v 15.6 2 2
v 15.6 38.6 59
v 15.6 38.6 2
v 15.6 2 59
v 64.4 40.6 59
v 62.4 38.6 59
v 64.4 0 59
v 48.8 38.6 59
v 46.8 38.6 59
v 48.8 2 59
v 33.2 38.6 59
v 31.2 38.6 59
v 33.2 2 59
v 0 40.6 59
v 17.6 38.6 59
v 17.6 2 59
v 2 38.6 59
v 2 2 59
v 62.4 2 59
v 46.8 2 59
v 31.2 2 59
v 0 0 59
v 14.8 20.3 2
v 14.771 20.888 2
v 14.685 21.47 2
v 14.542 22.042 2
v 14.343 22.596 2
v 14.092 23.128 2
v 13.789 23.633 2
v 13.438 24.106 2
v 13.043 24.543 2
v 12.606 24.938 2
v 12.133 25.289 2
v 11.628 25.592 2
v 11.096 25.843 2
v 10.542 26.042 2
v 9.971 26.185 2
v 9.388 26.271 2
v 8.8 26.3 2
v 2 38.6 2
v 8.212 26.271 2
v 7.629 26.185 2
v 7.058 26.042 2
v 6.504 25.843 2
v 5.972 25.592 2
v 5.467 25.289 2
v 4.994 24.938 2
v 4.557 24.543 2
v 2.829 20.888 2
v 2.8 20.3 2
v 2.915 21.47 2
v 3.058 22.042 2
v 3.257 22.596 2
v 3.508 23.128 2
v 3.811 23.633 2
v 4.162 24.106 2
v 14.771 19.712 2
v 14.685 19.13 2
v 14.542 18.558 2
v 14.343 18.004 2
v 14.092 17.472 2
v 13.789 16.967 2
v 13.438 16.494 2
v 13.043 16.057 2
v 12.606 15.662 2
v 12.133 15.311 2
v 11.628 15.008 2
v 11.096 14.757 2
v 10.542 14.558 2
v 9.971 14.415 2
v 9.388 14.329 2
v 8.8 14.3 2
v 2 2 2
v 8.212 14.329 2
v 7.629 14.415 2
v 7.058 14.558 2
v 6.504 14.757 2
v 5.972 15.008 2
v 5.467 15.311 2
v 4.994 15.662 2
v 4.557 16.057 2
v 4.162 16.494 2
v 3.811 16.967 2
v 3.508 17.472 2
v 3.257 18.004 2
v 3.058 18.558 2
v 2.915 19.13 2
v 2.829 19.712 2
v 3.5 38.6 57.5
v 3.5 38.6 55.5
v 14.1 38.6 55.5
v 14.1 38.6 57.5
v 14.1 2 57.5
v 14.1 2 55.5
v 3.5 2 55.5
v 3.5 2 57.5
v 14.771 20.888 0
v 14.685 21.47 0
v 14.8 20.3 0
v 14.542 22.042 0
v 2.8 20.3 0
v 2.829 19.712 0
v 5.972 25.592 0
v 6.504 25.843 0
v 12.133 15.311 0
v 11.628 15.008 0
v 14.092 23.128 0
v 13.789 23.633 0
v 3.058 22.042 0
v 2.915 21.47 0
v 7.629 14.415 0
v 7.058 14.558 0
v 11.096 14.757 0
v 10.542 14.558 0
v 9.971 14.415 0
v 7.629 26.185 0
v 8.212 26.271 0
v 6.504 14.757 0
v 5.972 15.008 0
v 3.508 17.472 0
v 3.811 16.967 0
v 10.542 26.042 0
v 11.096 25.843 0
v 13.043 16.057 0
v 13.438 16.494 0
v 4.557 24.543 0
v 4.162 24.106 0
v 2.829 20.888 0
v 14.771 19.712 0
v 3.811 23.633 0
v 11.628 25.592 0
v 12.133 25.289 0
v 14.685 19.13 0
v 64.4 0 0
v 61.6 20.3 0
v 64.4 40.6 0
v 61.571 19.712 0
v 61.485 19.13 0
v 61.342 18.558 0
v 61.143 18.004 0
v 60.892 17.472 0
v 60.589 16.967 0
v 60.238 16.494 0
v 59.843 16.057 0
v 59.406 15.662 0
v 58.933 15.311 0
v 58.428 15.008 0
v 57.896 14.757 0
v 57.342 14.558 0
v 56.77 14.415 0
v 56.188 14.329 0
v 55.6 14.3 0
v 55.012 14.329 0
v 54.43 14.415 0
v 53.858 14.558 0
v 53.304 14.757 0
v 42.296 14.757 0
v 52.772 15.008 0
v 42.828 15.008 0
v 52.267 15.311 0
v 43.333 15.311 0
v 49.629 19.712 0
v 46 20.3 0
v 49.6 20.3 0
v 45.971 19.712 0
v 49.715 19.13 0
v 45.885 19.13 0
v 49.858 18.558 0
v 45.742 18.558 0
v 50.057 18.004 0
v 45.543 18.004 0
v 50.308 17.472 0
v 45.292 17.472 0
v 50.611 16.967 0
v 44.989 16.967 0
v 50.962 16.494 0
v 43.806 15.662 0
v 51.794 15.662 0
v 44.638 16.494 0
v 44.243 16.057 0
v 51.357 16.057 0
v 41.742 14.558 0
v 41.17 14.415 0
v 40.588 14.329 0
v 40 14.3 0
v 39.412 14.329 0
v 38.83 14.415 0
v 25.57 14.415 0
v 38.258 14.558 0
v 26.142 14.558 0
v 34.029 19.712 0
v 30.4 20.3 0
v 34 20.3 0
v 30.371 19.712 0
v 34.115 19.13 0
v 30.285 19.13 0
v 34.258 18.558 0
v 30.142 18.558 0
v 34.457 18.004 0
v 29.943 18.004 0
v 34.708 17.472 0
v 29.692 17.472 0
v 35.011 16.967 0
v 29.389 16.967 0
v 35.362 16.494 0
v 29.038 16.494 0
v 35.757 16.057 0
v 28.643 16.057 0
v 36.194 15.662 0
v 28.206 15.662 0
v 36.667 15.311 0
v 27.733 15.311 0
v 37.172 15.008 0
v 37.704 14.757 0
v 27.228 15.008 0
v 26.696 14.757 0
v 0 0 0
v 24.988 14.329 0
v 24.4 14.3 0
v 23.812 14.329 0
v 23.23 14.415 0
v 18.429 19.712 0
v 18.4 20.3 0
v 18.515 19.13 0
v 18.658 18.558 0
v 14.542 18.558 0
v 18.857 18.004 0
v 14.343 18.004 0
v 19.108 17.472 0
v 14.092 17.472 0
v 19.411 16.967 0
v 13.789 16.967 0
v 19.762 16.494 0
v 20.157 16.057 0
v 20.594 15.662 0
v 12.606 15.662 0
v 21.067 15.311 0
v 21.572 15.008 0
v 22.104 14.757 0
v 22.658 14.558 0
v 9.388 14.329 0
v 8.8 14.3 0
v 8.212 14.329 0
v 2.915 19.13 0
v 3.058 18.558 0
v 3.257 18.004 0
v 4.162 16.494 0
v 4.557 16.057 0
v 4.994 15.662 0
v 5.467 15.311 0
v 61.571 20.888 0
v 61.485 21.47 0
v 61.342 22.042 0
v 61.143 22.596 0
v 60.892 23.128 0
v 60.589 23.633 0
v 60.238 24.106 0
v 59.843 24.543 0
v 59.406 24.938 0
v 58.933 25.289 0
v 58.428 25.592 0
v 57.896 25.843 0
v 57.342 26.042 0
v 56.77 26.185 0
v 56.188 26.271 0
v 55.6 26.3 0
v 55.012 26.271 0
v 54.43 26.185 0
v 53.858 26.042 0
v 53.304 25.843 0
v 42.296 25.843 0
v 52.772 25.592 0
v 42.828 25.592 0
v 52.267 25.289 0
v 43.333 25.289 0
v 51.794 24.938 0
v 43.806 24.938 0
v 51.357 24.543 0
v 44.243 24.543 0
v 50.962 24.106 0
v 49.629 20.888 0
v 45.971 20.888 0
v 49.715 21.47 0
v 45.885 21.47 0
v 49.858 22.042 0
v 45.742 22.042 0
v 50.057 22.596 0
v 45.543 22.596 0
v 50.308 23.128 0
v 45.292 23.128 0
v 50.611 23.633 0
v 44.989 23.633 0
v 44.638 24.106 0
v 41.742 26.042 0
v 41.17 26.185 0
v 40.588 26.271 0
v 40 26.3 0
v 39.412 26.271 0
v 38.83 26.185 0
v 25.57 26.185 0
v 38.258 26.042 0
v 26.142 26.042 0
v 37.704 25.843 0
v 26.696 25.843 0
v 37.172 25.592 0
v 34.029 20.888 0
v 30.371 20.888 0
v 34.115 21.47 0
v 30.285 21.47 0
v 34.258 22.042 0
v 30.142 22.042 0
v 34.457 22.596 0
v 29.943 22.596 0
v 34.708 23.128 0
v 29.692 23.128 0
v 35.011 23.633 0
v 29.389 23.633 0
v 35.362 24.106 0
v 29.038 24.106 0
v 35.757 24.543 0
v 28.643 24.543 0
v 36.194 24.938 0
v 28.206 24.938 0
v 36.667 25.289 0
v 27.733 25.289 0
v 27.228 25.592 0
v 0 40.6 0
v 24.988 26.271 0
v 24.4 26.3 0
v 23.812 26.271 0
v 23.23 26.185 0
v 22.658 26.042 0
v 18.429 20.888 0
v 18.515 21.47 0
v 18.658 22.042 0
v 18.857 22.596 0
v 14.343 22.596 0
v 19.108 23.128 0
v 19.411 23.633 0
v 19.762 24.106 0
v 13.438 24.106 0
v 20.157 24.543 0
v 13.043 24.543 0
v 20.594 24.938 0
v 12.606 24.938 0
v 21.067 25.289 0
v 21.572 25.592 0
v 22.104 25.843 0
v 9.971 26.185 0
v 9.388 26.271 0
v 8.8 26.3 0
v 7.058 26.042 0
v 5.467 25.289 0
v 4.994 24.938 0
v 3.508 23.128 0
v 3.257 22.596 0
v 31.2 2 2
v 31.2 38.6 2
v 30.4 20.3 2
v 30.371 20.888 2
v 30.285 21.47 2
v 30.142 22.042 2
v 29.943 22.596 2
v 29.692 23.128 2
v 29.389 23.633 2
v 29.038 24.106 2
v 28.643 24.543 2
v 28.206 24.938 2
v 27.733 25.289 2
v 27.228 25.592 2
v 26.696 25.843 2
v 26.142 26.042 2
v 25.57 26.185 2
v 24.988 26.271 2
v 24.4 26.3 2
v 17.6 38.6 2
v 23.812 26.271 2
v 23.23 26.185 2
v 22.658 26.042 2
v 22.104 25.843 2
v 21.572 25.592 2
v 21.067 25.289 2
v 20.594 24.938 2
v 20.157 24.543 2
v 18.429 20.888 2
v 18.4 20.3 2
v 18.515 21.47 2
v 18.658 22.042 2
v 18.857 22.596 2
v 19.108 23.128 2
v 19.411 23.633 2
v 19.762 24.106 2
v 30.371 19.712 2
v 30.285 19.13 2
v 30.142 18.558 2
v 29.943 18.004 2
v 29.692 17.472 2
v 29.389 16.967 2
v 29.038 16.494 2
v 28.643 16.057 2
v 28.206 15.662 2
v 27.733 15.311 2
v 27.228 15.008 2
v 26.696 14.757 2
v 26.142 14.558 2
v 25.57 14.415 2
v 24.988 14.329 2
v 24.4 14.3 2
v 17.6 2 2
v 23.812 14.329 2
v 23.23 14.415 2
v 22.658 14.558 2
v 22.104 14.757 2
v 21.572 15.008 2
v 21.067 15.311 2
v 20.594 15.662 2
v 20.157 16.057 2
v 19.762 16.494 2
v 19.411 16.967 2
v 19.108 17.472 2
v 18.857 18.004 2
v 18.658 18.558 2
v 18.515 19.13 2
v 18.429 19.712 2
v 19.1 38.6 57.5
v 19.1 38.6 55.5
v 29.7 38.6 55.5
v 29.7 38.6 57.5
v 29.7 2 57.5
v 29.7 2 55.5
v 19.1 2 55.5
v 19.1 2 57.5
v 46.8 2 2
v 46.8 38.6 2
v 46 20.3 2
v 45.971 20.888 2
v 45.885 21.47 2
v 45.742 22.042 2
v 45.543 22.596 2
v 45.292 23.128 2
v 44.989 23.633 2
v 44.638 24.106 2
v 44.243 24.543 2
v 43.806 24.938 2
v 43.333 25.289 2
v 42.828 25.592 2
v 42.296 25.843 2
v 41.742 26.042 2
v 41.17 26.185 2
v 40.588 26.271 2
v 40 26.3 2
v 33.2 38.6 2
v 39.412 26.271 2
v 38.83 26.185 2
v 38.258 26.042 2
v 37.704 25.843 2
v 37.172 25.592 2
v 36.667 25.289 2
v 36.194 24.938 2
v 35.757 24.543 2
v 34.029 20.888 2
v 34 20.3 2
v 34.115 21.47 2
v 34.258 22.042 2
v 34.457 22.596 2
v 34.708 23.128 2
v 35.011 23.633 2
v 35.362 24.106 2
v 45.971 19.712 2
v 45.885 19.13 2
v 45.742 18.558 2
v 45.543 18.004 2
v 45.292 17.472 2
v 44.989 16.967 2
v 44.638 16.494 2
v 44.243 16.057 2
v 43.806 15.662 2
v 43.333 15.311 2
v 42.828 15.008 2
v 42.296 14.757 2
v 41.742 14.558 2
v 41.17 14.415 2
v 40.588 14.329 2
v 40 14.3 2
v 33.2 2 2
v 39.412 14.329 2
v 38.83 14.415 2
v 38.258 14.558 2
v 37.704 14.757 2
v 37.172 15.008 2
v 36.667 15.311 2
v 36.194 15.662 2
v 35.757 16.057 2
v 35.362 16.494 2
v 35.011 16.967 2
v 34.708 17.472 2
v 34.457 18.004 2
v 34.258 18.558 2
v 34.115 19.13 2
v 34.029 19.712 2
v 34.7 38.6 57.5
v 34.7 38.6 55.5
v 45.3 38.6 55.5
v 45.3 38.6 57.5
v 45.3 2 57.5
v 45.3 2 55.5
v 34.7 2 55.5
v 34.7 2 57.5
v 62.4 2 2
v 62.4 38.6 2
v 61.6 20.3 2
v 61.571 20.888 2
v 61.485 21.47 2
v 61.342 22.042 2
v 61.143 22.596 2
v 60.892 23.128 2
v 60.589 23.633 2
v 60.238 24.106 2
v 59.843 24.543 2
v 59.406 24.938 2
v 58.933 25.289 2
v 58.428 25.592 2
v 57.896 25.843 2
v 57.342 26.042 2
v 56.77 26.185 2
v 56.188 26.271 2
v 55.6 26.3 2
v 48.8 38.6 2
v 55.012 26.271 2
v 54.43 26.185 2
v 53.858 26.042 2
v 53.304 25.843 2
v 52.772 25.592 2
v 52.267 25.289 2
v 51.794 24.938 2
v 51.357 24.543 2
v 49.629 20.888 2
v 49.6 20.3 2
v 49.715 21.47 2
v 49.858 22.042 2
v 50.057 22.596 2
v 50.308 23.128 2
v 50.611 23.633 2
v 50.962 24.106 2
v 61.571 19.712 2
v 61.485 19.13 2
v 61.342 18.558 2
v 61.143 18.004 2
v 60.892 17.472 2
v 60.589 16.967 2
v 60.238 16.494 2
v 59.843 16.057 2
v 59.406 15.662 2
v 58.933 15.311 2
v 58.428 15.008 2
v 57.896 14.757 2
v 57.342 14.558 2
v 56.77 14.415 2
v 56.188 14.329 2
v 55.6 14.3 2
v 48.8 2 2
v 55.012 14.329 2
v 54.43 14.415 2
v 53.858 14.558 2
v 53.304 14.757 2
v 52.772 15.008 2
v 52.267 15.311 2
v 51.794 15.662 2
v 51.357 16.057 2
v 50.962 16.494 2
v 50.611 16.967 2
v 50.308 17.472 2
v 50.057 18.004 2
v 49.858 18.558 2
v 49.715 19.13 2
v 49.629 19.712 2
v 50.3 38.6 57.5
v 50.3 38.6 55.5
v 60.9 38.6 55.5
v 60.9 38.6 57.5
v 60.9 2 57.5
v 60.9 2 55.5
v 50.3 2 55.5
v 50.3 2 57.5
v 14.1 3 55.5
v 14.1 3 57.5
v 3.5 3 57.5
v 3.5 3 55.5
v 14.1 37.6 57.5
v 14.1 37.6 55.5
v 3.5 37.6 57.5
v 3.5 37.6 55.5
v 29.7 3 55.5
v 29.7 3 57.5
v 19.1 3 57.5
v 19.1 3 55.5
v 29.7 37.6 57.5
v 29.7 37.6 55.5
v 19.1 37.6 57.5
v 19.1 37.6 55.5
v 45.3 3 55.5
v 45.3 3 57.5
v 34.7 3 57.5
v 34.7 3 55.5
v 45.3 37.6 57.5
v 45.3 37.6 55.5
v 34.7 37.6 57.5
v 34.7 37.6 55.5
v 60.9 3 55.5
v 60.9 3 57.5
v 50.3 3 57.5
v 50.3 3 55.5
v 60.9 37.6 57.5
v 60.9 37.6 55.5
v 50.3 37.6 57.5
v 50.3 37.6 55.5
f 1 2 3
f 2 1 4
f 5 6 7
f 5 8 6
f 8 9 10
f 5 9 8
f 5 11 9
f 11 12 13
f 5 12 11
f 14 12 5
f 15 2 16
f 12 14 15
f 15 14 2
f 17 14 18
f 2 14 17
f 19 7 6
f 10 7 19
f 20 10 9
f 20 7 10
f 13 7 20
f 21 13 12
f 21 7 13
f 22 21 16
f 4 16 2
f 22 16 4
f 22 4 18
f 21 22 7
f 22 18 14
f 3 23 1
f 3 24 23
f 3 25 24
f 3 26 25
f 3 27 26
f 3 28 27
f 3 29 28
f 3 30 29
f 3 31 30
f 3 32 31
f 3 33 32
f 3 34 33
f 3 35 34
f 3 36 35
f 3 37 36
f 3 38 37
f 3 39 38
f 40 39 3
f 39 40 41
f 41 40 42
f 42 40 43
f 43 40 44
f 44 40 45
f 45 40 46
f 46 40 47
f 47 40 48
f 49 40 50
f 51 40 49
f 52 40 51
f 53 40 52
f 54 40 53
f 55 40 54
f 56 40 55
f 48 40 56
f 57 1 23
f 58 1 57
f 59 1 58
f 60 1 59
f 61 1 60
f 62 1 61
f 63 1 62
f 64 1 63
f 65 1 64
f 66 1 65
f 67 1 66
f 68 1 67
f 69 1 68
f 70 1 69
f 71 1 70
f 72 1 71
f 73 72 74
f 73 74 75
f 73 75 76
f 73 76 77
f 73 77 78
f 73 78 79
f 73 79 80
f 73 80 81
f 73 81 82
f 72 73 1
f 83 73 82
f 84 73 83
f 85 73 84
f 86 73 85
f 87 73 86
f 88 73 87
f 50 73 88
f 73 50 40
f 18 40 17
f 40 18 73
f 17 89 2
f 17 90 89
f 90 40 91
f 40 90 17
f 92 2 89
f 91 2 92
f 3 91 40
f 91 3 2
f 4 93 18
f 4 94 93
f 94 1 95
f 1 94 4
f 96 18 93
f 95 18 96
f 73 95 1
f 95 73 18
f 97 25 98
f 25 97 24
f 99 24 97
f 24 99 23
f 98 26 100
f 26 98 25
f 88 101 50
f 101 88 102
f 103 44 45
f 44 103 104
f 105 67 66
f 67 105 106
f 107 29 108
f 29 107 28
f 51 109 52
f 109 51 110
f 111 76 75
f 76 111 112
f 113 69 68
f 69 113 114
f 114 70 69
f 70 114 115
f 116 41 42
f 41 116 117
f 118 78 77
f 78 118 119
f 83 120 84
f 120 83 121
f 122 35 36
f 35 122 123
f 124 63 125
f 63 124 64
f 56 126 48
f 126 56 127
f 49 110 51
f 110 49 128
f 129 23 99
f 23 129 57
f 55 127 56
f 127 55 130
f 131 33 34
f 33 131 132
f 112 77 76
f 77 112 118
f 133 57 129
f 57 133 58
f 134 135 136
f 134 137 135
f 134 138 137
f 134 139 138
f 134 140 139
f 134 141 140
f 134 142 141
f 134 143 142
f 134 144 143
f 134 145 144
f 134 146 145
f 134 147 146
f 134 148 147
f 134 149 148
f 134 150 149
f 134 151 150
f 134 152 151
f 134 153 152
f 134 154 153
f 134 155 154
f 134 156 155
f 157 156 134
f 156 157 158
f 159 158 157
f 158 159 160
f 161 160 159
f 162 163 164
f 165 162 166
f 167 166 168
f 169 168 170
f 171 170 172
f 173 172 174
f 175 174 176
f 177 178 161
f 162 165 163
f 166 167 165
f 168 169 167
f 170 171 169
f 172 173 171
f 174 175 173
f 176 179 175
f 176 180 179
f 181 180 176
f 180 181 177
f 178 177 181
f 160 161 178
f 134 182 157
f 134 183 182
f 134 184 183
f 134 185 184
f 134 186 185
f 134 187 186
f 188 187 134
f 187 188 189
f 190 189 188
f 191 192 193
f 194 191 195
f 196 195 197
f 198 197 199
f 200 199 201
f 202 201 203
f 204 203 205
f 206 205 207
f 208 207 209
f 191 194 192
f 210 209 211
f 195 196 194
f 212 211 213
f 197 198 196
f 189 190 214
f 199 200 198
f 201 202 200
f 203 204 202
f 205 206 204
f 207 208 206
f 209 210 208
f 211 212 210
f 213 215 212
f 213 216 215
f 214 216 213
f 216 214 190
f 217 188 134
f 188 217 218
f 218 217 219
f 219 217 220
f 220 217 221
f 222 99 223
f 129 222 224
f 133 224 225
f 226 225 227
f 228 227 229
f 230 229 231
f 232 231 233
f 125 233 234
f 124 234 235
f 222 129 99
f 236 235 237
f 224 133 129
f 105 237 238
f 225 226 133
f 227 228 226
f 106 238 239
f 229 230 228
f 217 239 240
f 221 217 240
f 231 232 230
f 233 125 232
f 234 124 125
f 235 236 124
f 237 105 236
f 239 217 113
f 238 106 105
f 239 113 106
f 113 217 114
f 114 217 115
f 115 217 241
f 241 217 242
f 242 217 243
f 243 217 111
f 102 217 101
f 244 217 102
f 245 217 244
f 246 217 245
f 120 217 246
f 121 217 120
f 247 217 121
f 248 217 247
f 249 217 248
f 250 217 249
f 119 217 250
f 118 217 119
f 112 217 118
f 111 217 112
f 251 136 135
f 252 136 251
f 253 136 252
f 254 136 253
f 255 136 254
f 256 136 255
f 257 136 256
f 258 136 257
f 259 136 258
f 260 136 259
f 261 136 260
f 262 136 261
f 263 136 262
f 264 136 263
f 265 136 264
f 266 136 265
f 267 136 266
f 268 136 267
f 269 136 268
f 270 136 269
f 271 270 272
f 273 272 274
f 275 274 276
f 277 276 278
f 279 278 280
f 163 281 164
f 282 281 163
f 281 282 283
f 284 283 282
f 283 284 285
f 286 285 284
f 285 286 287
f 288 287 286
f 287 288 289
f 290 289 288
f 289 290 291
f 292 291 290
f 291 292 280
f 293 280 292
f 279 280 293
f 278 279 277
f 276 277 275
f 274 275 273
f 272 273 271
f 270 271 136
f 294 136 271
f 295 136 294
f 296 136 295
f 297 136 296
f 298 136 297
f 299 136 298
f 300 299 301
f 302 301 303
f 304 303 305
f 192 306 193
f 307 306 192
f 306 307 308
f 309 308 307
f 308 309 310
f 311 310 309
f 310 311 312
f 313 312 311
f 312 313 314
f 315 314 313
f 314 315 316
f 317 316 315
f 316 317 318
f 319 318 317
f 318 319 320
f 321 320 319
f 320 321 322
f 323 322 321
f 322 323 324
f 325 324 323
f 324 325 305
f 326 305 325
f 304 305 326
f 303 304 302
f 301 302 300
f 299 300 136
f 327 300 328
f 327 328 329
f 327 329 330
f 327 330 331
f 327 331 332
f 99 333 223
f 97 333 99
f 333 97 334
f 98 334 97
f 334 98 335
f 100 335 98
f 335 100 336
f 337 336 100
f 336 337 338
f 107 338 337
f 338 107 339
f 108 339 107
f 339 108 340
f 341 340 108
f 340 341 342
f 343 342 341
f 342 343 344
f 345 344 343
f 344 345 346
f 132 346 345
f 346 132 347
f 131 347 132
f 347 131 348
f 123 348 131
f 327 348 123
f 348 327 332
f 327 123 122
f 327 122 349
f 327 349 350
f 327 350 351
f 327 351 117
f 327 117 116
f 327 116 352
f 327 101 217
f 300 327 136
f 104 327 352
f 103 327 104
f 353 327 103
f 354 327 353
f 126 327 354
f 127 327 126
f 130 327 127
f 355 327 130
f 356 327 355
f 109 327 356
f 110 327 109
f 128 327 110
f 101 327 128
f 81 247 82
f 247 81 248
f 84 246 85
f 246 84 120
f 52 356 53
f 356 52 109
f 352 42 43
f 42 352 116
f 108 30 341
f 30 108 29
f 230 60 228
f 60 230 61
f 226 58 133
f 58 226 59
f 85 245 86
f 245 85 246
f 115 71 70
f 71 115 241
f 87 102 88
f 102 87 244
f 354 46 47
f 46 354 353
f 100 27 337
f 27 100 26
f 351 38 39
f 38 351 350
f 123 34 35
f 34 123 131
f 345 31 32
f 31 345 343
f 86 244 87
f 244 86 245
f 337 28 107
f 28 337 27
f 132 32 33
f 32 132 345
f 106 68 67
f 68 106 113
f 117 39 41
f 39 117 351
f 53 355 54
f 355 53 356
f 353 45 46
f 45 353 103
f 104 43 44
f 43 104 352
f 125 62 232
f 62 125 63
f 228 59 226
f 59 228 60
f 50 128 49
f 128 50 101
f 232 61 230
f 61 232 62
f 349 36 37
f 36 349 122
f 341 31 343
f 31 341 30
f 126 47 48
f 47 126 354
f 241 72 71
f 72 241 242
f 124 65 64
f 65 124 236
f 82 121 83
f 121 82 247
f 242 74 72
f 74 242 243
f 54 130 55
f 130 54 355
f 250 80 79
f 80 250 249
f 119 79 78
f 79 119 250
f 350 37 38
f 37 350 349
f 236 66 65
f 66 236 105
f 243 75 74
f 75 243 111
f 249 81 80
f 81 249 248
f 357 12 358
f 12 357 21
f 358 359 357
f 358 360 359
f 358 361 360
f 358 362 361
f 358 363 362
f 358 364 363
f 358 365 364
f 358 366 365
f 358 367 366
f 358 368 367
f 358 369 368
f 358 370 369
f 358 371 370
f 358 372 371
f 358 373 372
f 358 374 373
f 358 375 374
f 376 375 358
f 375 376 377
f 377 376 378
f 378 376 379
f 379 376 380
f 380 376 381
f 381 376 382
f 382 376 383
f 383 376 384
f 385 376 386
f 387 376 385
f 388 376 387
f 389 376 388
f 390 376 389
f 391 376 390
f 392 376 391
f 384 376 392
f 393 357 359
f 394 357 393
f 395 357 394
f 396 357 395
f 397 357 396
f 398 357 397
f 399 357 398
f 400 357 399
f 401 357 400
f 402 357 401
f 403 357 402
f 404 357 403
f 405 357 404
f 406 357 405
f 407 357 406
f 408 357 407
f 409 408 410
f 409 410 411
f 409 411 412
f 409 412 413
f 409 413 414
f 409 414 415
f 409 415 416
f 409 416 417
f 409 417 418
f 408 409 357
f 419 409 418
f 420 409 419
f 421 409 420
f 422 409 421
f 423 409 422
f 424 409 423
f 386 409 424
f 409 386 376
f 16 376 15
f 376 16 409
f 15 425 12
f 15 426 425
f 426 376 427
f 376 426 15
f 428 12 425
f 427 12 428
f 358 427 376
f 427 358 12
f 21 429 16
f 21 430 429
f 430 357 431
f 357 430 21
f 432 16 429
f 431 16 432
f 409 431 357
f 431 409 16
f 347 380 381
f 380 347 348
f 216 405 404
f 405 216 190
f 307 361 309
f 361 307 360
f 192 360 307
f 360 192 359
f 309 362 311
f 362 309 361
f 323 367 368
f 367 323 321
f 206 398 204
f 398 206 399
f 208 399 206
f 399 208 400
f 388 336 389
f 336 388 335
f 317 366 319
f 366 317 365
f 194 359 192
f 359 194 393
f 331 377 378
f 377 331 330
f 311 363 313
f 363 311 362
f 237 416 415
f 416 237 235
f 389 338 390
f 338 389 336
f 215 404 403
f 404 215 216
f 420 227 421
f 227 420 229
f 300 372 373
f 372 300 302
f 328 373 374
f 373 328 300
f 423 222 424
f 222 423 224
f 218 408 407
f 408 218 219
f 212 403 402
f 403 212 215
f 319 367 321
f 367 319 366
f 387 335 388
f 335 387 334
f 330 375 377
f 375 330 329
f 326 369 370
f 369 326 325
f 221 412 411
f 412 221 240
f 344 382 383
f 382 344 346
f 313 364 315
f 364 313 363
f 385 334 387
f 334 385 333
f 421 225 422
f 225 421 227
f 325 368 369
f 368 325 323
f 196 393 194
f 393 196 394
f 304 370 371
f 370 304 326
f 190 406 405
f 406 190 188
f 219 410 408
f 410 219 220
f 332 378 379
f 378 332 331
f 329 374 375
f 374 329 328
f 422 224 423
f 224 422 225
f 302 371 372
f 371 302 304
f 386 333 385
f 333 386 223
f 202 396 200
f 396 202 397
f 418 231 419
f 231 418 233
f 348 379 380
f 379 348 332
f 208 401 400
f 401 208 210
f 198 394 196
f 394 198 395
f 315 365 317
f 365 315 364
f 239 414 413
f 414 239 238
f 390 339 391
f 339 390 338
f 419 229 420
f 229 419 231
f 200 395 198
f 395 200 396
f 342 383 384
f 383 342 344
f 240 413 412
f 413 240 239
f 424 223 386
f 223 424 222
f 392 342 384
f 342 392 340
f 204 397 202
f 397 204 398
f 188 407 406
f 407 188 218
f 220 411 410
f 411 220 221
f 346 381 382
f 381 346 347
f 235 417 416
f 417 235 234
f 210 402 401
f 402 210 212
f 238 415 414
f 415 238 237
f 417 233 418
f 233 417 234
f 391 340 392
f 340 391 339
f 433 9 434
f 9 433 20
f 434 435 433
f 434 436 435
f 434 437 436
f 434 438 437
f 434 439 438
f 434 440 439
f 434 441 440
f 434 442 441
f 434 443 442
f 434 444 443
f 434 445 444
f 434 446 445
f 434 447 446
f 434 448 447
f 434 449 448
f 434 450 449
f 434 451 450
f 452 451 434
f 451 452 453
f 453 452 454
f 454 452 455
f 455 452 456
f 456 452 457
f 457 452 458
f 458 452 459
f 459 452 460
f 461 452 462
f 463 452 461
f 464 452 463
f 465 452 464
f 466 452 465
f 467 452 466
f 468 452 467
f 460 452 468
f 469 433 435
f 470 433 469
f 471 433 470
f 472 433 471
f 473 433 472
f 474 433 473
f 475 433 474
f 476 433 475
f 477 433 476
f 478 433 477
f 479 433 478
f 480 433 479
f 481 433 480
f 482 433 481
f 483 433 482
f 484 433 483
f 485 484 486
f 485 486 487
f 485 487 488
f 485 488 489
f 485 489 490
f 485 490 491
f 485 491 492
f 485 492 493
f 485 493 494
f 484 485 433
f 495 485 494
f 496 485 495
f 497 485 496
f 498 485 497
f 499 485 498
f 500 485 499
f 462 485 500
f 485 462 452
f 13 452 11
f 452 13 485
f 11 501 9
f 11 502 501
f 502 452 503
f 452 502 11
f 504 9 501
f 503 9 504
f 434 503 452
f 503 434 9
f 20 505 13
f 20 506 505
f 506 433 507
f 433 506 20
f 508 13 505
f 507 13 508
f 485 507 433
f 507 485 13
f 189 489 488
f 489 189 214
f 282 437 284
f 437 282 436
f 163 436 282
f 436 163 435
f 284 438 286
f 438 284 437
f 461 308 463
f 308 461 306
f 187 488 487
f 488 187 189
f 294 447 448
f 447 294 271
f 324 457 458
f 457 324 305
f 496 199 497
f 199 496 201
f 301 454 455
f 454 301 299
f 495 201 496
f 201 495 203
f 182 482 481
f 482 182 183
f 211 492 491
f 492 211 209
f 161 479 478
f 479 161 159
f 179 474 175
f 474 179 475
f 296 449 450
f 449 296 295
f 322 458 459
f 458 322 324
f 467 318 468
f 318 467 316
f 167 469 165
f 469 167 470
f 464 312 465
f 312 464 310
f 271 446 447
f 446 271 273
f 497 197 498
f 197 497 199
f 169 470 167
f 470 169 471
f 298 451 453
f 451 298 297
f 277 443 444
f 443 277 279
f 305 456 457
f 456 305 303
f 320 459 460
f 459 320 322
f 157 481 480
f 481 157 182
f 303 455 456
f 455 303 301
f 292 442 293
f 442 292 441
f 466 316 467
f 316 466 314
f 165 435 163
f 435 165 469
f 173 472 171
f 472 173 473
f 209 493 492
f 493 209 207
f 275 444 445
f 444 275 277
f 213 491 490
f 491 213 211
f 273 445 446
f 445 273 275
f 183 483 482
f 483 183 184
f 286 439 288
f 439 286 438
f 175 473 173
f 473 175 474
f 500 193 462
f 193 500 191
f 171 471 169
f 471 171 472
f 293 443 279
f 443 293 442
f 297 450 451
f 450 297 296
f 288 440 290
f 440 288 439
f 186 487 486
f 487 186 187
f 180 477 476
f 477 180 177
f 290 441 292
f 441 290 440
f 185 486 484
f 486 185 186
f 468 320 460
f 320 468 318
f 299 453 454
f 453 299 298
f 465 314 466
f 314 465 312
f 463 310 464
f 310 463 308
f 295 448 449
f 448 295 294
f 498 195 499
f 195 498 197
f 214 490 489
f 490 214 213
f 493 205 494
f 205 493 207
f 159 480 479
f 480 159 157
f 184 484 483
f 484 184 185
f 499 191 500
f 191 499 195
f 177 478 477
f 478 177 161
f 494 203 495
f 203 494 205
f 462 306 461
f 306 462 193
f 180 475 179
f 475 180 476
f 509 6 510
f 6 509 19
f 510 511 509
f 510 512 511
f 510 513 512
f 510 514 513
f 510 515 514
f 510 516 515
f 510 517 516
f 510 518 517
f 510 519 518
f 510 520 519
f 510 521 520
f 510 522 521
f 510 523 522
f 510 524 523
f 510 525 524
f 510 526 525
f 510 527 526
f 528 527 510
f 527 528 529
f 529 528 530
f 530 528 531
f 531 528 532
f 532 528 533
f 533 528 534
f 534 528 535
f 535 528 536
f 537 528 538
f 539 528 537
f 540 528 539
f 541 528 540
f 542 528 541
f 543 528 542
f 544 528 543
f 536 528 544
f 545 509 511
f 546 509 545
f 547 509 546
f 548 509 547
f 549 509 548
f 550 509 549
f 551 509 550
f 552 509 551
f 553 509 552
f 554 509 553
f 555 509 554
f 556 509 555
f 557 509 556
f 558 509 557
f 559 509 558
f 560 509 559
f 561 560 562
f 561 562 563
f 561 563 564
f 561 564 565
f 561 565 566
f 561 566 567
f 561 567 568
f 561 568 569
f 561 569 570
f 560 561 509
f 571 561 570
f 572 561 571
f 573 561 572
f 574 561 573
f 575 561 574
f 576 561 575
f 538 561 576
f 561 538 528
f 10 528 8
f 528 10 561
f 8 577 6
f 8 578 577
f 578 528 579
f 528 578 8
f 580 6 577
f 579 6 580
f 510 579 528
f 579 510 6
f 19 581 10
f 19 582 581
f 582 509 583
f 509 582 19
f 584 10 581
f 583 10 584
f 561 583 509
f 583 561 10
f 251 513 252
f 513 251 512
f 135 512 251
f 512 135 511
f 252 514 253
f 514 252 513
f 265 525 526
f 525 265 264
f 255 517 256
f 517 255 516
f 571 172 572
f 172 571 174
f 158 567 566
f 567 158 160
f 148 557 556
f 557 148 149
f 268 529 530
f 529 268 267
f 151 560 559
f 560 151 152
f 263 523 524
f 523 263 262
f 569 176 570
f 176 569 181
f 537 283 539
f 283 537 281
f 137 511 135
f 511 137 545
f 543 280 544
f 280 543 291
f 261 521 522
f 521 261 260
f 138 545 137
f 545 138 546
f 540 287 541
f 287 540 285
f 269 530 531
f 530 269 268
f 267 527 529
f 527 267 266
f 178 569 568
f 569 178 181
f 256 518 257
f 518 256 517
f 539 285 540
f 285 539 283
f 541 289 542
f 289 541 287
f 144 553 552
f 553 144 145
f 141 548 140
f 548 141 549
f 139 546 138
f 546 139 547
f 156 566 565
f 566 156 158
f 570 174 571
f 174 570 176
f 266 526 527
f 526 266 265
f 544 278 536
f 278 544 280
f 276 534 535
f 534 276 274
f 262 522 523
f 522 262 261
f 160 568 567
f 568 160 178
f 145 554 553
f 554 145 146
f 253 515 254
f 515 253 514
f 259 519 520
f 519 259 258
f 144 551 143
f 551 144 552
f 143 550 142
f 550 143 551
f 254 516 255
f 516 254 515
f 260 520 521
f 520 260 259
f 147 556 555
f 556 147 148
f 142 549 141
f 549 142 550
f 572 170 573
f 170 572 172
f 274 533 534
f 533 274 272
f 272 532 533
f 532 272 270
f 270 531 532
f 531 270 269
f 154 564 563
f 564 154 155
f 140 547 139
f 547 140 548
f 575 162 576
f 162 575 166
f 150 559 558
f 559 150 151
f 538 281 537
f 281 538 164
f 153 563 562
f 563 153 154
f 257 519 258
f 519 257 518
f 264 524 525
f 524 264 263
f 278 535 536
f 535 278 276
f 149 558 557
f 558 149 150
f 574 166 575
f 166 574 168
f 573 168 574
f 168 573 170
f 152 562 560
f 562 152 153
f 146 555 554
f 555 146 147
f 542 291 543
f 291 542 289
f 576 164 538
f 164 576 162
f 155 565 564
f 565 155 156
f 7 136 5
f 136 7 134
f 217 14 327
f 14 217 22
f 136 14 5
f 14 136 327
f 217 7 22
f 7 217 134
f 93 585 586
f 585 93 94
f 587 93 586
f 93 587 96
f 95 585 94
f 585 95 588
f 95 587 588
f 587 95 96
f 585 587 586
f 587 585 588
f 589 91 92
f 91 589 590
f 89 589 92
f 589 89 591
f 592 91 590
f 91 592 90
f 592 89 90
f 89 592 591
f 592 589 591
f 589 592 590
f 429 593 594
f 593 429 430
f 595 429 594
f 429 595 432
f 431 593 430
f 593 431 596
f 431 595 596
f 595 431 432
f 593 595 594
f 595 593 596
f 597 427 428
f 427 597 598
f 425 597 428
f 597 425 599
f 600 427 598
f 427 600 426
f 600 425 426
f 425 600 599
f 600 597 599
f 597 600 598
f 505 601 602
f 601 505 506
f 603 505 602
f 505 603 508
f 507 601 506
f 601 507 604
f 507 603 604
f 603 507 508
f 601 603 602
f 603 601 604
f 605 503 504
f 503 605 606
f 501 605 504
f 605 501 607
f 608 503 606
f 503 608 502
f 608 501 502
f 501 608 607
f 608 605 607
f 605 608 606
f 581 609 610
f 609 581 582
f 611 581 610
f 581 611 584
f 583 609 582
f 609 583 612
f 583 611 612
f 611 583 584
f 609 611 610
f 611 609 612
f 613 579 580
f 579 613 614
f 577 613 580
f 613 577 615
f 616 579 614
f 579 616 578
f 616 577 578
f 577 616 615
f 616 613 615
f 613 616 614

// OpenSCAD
// Battery case for 4 Olympus BLS-5 batteries
$fn = 64;

// Battery dimensions
battery_w = 36;   // width (mm)
battery_t = 13;   // thickness (mm)
battery_h = 56;   // height (mm)

// Clearances
clearance = 0.6;  // total clearance

// Slot footprint oriented so batteries face each other with largest face
slot_x = battery_t + clearance; // along row (thickness)
slot_y = battery_w + clearance; // across (width)
slot_h = battery_h + 1;         // extra headroom

// Case parameters
wall = 2;
bottom = 2;

// Snap bump parameters
bump_w = slot_x - 3;  // width of bump along X
bump_t = 1;           // protrusion into cavity
bump_h = 2;
bump_offset = 1.5;    // below top

// Finger hole
finger_r = 6;

// Overall case dimensions
case_len = 4*slot_x + 5*wall;  // along X
case_dep = slot_y + 2*wall;    // along Y
case_hgt = bottom + slot_h;    // along Z

module slot_cavity(x0) {
    translate([x0, wall, bottom])
        cube([slot_x, slot_y, slot_h], center=false);
}

module finger_hole(x0) {
    translate([x0 + slot_x/2, wall + slot_y/2, 0])
        cylinder(h = bottom + 0.5, r = finger_r, center=false);
}

module snap_bumps(x0) {
    // two bumps on long sides (along Y)
    z0 = bottom + slot_h - bump_h - bump_offset;
    x_center = x0 + slot_x/2 - bump_w/2;
    // front side
    translate([x_center, wall, z0])
        cube([bump_w, bump_t, bump_h], center=false);
    // back side
    translate([x_center, wall + slot_y - bump_t, z0])
        cube([bump_w, bump_t, bump_h], center=false);
}

// Build the case
union() {
    difference() {
        // outer shell
        cube([case_len, case_dep, case_hgt], center=false);
        // cavities and finger holes
        for (i = [0:3]) {
            x0 = wall + i*(slot_x + wall);
            slot_cavity(x0);
            finger_hole(x0);
        }
    }
    // add snap bumps
    for (i = [0:3]) {
        x0 = wall + i*(slot_x + wall);
        snap_bumps(x0);
    }
}
